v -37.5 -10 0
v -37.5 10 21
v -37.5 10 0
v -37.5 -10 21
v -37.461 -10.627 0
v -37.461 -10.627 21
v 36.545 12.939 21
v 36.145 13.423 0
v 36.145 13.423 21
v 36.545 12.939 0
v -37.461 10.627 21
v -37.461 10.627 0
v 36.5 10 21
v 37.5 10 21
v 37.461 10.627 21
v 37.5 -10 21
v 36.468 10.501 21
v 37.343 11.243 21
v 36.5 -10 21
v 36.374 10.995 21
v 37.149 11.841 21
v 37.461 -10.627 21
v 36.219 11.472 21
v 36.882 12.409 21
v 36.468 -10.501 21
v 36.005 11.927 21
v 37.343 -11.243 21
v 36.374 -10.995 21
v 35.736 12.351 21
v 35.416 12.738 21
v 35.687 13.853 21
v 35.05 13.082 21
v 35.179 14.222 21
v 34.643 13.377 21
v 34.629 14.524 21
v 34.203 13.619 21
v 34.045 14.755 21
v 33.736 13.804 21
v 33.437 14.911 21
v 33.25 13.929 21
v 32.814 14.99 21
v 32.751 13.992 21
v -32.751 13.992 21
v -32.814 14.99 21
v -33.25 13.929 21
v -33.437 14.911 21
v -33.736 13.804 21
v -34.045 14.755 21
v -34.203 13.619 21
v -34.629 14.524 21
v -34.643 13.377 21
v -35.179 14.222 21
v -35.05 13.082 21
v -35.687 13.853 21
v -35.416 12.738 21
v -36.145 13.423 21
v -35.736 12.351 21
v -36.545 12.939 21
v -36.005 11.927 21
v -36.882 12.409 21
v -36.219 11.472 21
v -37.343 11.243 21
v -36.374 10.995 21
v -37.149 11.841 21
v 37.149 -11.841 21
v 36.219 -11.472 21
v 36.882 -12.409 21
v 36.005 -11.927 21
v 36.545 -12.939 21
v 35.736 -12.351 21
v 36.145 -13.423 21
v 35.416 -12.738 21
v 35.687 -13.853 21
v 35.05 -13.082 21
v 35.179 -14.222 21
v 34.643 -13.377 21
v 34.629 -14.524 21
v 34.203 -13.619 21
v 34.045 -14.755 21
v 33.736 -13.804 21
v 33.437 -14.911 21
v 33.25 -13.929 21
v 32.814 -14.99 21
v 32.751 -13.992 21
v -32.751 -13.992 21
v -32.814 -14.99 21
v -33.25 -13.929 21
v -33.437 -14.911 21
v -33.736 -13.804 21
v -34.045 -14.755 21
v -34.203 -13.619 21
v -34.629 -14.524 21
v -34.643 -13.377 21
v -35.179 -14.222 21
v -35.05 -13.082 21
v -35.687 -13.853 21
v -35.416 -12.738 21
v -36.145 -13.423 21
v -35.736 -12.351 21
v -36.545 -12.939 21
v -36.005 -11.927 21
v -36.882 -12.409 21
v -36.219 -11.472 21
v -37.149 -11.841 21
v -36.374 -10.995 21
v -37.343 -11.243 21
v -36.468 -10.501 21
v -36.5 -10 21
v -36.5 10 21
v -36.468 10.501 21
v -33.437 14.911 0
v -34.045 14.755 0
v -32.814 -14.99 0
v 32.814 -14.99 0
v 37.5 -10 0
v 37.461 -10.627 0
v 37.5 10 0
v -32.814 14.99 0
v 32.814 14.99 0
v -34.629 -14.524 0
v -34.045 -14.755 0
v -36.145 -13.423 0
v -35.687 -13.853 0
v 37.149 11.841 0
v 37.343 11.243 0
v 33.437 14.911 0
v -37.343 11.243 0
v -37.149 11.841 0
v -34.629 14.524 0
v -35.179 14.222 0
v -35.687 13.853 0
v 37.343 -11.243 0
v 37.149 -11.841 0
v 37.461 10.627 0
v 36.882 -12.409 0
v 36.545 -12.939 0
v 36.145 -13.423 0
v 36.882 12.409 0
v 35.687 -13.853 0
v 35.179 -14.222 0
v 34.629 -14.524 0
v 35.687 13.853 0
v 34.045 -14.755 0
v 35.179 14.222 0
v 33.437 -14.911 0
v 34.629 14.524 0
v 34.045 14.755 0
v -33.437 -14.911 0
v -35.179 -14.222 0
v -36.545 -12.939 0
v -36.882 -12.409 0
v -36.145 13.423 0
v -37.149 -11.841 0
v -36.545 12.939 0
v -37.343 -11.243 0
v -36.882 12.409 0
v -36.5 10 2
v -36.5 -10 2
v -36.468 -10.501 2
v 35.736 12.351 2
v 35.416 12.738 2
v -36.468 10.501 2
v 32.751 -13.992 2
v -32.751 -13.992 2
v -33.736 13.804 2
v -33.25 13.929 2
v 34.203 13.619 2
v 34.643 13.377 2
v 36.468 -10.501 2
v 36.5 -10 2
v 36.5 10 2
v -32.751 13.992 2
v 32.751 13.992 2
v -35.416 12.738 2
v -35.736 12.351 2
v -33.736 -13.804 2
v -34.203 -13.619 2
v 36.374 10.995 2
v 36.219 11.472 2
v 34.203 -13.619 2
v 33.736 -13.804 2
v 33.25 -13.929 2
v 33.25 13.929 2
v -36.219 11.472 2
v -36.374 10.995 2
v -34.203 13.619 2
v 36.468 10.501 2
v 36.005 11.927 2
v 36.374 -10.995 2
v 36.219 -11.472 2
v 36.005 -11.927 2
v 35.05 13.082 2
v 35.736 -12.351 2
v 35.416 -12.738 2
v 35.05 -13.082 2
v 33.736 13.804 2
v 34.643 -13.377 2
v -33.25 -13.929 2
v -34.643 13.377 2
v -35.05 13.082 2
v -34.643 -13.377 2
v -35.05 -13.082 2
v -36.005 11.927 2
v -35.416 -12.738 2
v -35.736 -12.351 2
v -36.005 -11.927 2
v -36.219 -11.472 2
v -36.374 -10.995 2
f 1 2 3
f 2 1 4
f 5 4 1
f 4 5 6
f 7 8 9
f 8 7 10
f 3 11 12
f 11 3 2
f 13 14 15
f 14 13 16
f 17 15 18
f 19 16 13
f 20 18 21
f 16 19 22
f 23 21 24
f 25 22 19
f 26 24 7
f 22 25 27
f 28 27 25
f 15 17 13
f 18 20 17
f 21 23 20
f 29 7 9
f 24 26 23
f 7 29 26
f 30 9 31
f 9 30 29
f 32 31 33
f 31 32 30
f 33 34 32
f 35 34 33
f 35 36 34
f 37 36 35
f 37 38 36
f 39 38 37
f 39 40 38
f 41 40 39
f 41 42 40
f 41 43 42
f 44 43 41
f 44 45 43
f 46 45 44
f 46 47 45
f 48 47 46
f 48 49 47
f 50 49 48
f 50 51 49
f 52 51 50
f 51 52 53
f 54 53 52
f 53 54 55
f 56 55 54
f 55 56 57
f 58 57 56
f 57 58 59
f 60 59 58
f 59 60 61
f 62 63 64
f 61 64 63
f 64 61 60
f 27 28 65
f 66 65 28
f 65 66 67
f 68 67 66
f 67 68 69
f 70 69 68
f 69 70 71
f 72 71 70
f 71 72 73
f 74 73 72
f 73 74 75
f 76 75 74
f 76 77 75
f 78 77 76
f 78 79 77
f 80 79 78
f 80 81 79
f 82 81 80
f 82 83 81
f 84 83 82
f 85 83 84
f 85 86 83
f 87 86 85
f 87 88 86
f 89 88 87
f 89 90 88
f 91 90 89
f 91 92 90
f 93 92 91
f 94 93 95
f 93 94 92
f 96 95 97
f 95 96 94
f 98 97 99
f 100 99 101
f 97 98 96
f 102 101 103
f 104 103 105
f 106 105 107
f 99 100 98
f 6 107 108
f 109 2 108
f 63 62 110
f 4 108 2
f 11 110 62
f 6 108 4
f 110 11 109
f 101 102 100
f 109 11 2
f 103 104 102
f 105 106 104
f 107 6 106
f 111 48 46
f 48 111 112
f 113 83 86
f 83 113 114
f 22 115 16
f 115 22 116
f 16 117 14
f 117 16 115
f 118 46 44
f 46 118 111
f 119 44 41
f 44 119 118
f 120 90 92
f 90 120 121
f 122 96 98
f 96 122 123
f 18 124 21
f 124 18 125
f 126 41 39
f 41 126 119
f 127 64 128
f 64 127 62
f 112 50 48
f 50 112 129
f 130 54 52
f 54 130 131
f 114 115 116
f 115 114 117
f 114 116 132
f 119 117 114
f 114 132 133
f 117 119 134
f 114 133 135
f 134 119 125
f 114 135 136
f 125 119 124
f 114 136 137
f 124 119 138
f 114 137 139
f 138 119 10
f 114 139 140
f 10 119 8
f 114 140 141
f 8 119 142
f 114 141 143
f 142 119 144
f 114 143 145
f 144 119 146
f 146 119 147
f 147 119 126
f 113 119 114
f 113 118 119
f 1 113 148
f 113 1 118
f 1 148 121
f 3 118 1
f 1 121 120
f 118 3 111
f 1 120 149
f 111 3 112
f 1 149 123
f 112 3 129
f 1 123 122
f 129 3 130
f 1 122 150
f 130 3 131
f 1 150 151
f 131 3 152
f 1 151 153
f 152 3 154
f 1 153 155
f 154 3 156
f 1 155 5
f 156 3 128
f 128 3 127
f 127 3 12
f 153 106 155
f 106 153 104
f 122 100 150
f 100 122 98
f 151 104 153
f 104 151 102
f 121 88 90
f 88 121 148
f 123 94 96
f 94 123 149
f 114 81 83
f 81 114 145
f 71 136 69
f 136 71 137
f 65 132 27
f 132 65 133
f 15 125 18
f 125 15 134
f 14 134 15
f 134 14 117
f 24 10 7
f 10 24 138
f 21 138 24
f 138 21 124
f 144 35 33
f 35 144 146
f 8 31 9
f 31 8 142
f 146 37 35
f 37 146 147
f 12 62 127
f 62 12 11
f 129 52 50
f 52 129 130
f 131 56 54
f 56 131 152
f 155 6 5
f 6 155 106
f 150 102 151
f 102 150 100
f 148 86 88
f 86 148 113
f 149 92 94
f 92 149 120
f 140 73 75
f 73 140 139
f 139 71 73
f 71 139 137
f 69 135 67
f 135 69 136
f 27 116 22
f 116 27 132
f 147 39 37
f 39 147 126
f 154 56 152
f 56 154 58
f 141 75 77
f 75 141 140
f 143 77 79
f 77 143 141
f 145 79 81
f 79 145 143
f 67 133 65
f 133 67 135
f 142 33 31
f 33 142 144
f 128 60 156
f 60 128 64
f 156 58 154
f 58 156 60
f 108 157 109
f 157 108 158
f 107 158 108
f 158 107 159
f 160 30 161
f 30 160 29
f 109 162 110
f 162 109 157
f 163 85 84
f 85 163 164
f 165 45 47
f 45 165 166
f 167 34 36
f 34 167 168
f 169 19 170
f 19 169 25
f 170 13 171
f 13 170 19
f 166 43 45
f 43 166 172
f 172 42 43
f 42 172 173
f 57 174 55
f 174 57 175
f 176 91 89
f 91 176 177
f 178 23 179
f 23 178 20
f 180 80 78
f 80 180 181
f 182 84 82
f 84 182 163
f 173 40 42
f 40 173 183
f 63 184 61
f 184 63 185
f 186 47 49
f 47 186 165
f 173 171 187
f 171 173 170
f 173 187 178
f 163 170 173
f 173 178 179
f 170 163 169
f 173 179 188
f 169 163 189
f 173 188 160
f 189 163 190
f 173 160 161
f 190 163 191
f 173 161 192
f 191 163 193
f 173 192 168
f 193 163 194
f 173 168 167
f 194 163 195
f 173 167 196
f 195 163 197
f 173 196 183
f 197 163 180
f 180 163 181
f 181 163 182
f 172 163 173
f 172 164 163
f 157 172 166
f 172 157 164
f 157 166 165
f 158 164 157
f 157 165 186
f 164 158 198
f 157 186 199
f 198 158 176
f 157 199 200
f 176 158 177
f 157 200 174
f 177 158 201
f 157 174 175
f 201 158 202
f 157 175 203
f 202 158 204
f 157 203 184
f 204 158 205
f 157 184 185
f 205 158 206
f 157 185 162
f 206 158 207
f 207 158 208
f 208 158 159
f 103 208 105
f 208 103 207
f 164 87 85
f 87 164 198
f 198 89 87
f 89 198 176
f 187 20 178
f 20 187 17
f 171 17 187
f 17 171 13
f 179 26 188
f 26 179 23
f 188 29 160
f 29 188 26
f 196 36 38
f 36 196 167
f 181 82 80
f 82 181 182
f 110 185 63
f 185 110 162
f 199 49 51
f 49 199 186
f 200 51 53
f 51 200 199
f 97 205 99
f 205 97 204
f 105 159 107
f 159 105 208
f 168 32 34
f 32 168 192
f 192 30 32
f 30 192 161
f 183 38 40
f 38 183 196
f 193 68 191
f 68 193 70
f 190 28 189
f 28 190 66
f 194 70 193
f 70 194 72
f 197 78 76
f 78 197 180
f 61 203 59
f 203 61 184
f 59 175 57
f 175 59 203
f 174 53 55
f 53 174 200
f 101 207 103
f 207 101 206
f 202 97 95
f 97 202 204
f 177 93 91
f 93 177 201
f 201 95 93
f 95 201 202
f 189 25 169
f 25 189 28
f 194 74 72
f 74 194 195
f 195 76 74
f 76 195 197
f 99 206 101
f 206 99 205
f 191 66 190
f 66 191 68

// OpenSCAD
$fn = 50;


difference() {
	union() {
		hull() {
			translate(v = [-32.5000000000, 10.0000000000, 0]) {
				cylinder(h = 21, r = 5);
			}
			translate(v = [32.5000000000, 10.0000000000, 0]) {
				cylinder(h = 21, r = 5);
			}
			translate(v = [-32.5000000000, -10.0000000000, 0]) {
				cylinder(h = 21, r = 5);
			}
			translate(v = [32.5000000000, -10.0000000000, 0]) {
				cylinder(h = 21, r = 5);
			}
		}
	}
	union() {
		translate(v = [0, 0, 2]) {
			hull() {
				translate(v = [-32.5000000000, 10.0000000000, 0]) {
					cylinder(h = 19, r = 4);
				}
				translate(v = [32.5000000000, 10.0000000000, 0]) {
					cylinder(h = 19, r = 4);
				}
				translate(v = [-32.5000000000, -10.0000000000, 0]) {
					cylinder(h = 19, r = 4);
				}
				translate(v = [32.5000000000, -10.0000000000, 0]) {
					cylinder(h = 19, r = 4);
				}
			}
		}
	}
}
